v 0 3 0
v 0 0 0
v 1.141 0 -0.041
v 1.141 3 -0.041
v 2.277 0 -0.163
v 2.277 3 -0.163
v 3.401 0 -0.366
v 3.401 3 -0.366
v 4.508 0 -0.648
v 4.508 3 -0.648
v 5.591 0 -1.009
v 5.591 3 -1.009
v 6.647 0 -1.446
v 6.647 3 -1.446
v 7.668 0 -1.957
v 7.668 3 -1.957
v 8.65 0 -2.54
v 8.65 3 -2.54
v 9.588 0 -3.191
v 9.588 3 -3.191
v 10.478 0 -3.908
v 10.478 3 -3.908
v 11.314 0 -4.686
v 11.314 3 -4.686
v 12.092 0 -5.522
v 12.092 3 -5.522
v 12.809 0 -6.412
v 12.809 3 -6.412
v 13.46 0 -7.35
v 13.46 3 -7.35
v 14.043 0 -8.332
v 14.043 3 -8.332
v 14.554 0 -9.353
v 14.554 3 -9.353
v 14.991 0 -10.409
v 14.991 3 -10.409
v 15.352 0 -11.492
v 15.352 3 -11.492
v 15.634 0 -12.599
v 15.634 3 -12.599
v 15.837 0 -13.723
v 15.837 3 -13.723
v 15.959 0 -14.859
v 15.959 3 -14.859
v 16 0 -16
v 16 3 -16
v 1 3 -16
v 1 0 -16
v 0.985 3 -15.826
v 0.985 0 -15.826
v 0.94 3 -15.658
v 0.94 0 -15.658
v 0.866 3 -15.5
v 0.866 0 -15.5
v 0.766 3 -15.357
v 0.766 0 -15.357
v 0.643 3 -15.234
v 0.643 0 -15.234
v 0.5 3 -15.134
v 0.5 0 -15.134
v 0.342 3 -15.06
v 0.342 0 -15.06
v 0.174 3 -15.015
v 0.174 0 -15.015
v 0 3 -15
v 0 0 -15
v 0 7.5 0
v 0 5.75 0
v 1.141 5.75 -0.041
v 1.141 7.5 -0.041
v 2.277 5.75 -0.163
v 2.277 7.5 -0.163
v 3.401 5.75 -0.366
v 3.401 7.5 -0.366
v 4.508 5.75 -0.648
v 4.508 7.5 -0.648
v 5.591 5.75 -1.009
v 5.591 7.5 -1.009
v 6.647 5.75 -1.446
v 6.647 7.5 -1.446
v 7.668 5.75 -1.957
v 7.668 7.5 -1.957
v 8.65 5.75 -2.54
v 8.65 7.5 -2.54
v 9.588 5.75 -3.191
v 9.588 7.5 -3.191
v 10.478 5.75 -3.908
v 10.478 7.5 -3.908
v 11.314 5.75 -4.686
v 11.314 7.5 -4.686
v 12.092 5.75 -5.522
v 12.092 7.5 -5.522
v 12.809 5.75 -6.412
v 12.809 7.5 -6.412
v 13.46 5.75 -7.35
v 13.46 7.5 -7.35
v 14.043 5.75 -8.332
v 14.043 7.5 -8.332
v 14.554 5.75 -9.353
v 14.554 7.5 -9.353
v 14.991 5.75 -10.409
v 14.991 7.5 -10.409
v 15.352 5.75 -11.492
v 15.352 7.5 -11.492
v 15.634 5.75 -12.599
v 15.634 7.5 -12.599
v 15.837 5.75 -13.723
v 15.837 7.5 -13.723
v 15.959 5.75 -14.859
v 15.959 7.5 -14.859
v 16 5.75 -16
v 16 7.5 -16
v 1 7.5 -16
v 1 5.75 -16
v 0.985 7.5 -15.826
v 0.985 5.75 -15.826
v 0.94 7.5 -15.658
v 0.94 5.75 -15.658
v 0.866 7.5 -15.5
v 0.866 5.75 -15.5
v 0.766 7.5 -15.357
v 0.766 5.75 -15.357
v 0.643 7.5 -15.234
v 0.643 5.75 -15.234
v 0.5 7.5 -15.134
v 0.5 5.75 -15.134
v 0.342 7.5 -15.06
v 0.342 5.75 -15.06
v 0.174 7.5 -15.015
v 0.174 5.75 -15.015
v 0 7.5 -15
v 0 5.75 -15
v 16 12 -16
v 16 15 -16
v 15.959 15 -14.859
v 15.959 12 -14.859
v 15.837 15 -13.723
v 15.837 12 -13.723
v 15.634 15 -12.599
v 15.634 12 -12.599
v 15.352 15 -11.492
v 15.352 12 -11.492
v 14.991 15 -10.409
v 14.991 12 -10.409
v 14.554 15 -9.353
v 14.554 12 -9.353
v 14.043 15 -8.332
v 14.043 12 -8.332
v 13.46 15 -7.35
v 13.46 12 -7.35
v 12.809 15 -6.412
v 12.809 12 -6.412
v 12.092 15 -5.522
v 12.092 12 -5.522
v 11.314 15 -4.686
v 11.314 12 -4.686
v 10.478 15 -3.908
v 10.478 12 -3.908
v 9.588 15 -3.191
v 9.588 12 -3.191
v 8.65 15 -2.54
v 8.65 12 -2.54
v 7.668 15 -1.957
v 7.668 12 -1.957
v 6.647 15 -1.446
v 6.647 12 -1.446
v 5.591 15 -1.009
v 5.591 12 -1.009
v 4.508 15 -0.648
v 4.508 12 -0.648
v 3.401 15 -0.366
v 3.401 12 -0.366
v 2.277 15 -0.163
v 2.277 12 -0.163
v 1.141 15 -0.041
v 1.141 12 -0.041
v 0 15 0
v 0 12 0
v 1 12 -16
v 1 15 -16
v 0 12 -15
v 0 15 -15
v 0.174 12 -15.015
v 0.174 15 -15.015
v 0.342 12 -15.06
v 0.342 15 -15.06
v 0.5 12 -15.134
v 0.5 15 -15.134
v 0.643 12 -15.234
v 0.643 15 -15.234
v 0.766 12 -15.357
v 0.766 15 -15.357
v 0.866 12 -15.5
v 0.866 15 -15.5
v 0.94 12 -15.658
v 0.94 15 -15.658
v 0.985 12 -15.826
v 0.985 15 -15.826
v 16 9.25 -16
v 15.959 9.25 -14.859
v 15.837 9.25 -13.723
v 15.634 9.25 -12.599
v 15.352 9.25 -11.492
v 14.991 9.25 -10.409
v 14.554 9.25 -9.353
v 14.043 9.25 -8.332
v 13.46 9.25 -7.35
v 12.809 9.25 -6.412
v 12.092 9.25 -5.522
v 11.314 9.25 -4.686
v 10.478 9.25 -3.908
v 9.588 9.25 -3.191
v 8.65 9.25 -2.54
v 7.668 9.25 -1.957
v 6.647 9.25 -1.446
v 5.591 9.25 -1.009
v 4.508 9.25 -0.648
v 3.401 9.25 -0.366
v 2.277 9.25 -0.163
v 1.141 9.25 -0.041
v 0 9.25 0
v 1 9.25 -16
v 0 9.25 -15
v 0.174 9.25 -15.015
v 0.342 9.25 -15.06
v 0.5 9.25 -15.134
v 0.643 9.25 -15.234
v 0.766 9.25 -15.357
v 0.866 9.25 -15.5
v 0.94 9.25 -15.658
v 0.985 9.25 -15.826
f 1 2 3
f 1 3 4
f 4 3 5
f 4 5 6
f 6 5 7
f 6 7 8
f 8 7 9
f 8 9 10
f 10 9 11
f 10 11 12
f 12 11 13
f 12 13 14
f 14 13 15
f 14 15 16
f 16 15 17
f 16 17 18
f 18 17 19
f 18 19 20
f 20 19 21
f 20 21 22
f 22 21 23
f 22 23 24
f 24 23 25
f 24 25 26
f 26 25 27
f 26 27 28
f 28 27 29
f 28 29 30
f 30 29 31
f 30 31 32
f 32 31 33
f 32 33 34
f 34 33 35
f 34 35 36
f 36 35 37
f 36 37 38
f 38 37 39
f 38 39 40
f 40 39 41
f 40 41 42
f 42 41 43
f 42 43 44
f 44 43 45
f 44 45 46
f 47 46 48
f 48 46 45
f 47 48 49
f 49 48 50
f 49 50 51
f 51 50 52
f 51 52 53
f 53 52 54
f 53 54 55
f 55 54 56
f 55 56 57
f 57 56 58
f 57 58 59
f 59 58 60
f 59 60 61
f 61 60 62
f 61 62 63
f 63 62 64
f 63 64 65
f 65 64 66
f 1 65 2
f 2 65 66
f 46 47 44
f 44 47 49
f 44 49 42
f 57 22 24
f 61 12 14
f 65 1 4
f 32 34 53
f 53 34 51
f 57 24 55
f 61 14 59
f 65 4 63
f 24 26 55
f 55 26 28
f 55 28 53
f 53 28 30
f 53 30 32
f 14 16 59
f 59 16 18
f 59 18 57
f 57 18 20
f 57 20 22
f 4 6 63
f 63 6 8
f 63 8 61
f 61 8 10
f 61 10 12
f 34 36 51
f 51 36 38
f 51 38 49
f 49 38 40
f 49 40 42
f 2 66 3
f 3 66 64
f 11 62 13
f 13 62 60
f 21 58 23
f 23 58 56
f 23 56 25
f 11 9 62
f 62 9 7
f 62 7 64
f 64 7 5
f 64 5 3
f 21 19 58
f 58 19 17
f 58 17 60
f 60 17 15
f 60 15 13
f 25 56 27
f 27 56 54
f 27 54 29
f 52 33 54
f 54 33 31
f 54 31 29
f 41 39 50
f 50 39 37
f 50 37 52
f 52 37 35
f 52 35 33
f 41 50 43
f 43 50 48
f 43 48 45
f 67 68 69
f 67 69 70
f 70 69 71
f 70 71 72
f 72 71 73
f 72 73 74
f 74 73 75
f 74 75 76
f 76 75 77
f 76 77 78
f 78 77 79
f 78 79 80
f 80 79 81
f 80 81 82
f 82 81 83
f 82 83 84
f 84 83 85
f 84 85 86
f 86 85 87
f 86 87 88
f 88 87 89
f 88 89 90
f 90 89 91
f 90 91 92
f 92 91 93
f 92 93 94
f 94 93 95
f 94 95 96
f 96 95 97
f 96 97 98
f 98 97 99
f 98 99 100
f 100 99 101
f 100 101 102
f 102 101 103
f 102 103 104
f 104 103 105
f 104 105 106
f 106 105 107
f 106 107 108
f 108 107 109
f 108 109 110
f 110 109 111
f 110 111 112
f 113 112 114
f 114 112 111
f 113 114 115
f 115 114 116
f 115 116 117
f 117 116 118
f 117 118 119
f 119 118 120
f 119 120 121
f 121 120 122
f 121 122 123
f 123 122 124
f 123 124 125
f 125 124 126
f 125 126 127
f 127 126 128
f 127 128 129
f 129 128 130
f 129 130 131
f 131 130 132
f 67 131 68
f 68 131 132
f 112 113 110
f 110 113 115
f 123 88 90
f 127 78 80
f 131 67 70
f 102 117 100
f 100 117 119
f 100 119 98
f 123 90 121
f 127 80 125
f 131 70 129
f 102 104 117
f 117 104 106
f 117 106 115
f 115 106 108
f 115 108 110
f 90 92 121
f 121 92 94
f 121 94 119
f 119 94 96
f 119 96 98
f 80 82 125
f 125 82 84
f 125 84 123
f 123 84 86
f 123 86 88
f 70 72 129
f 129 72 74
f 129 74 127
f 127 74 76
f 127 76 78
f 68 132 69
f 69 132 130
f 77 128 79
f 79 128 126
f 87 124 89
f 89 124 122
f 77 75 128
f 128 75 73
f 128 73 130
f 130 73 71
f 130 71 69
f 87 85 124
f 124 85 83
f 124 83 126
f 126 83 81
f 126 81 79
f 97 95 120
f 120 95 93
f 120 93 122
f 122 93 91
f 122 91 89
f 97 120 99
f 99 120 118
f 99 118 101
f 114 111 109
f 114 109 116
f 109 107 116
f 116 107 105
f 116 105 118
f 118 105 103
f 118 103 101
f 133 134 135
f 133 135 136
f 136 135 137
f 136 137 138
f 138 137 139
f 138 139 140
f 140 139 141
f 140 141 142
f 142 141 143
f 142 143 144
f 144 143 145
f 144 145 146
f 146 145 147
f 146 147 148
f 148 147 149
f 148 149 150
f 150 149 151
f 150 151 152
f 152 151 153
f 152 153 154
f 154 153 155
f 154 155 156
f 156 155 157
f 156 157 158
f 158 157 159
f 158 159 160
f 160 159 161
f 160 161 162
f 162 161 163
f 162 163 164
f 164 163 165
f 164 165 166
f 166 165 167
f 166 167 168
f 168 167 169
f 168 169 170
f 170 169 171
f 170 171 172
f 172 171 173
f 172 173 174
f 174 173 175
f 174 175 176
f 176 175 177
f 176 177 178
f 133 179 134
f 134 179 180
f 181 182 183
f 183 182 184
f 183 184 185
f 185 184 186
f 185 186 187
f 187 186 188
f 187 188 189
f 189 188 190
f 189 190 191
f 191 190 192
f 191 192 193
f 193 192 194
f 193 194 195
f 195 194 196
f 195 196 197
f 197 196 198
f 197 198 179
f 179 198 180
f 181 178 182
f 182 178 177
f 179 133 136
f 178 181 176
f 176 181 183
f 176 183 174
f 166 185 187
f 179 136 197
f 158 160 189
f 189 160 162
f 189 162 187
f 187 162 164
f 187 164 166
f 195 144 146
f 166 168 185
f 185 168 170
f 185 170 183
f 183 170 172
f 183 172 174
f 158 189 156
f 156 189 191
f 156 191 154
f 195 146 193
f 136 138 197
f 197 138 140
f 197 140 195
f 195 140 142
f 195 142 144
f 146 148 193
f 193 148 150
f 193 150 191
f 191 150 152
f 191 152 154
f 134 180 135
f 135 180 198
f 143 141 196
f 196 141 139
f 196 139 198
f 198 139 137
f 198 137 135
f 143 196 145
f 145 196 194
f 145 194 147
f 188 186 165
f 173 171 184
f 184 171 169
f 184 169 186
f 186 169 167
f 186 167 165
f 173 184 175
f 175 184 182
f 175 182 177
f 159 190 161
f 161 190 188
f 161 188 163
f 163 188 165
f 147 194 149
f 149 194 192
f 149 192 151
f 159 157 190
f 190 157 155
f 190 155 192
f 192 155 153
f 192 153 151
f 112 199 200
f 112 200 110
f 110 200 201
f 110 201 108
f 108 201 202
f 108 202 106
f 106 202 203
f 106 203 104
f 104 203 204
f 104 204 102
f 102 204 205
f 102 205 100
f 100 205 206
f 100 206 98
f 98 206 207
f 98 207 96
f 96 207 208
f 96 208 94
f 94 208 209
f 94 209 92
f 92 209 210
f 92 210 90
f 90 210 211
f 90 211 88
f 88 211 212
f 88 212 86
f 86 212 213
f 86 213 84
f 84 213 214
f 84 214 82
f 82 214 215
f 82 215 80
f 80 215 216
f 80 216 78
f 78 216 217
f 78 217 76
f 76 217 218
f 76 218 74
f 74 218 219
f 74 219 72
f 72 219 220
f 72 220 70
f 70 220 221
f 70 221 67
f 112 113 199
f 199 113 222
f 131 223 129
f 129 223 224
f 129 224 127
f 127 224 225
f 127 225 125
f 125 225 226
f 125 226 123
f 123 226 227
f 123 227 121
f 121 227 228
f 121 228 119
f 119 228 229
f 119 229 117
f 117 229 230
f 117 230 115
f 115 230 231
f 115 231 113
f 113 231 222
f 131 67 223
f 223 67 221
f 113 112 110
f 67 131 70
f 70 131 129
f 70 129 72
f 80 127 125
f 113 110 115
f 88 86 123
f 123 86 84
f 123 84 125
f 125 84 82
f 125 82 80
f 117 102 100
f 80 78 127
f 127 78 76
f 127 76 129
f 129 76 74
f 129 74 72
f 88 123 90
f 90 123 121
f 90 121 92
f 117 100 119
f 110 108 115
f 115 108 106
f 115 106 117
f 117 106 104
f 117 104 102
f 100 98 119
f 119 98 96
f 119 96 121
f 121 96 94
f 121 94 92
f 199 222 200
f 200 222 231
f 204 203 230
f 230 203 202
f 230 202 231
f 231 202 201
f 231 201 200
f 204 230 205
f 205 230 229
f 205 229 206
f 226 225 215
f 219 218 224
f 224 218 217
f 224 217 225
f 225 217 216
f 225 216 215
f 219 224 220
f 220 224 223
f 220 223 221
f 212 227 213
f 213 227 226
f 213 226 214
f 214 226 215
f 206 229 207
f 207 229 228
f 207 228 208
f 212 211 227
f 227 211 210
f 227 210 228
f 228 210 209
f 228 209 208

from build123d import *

# Parameters (mm, degrees)
BOSS_EXTRUDE1_DEPTH = 3
BOSS_EXTRUDE2_DEPTH = 1.75


with BuildPart() as part:
    # Sketch1 → Boss-Extrude1 (new body)
    with BuildSketch(Plane(origin=(0, 0, 0), x_dir=(1, 0, 0), z_dir=(0, 1, 0))):
        with BuildLine():
            Line((0, 0), (0, 15))
            ThreePointArc((0, 15), (0.707106781, 15.292893219), (1, 16))
            Line((1, 16), (16, 16))
            ThreePointArc((16, 16), (11.313708499, 4.686291501), (0, 0))
        make_face()
    extrude(amount=BOSS_EXTRUDE1_DEPTH)


with BuildPart() as body_2:
    # Sketch2 → Boss-Extrude2 (new body)
    with BuildSketch(Plane(origin=(0, 5.75, 0), x_dir=(1, 0, 0), z_dir=(0, 1, 0))):
        with BuildLine():
            Line((1, 16), (16, 16))
            ThreePointArc((16, 16), (11.313708499, 4.686291501), (0, 0))
            Line((0, 0), (0, 15))
            ThreePointArc((0, 15), (0.707106781, 15.292893219), (1, 16))
        make_face()
    extrude(amount=BOSS_EXTRUDE2_DEPTH)


with BuildPart() as body_3:
    # Mirror1: mirrored copy
    add(part.part.mirror(Plane(origin=(0, 7.5, -16), x_dir=(0, 0, 1), z_dir=(0, 1, 0))))


with BuildPart() as body_4:
    # Mirror1 2: mirrored copy
    add(body_2.part.mirror(Plane(origin=(0, 7.5, -16), x_dir=(0, 0, 1), z_dir=(0, 1, 0))))


solid = Compound([part.part, body_2.part, body_3.part, body_4.part])
